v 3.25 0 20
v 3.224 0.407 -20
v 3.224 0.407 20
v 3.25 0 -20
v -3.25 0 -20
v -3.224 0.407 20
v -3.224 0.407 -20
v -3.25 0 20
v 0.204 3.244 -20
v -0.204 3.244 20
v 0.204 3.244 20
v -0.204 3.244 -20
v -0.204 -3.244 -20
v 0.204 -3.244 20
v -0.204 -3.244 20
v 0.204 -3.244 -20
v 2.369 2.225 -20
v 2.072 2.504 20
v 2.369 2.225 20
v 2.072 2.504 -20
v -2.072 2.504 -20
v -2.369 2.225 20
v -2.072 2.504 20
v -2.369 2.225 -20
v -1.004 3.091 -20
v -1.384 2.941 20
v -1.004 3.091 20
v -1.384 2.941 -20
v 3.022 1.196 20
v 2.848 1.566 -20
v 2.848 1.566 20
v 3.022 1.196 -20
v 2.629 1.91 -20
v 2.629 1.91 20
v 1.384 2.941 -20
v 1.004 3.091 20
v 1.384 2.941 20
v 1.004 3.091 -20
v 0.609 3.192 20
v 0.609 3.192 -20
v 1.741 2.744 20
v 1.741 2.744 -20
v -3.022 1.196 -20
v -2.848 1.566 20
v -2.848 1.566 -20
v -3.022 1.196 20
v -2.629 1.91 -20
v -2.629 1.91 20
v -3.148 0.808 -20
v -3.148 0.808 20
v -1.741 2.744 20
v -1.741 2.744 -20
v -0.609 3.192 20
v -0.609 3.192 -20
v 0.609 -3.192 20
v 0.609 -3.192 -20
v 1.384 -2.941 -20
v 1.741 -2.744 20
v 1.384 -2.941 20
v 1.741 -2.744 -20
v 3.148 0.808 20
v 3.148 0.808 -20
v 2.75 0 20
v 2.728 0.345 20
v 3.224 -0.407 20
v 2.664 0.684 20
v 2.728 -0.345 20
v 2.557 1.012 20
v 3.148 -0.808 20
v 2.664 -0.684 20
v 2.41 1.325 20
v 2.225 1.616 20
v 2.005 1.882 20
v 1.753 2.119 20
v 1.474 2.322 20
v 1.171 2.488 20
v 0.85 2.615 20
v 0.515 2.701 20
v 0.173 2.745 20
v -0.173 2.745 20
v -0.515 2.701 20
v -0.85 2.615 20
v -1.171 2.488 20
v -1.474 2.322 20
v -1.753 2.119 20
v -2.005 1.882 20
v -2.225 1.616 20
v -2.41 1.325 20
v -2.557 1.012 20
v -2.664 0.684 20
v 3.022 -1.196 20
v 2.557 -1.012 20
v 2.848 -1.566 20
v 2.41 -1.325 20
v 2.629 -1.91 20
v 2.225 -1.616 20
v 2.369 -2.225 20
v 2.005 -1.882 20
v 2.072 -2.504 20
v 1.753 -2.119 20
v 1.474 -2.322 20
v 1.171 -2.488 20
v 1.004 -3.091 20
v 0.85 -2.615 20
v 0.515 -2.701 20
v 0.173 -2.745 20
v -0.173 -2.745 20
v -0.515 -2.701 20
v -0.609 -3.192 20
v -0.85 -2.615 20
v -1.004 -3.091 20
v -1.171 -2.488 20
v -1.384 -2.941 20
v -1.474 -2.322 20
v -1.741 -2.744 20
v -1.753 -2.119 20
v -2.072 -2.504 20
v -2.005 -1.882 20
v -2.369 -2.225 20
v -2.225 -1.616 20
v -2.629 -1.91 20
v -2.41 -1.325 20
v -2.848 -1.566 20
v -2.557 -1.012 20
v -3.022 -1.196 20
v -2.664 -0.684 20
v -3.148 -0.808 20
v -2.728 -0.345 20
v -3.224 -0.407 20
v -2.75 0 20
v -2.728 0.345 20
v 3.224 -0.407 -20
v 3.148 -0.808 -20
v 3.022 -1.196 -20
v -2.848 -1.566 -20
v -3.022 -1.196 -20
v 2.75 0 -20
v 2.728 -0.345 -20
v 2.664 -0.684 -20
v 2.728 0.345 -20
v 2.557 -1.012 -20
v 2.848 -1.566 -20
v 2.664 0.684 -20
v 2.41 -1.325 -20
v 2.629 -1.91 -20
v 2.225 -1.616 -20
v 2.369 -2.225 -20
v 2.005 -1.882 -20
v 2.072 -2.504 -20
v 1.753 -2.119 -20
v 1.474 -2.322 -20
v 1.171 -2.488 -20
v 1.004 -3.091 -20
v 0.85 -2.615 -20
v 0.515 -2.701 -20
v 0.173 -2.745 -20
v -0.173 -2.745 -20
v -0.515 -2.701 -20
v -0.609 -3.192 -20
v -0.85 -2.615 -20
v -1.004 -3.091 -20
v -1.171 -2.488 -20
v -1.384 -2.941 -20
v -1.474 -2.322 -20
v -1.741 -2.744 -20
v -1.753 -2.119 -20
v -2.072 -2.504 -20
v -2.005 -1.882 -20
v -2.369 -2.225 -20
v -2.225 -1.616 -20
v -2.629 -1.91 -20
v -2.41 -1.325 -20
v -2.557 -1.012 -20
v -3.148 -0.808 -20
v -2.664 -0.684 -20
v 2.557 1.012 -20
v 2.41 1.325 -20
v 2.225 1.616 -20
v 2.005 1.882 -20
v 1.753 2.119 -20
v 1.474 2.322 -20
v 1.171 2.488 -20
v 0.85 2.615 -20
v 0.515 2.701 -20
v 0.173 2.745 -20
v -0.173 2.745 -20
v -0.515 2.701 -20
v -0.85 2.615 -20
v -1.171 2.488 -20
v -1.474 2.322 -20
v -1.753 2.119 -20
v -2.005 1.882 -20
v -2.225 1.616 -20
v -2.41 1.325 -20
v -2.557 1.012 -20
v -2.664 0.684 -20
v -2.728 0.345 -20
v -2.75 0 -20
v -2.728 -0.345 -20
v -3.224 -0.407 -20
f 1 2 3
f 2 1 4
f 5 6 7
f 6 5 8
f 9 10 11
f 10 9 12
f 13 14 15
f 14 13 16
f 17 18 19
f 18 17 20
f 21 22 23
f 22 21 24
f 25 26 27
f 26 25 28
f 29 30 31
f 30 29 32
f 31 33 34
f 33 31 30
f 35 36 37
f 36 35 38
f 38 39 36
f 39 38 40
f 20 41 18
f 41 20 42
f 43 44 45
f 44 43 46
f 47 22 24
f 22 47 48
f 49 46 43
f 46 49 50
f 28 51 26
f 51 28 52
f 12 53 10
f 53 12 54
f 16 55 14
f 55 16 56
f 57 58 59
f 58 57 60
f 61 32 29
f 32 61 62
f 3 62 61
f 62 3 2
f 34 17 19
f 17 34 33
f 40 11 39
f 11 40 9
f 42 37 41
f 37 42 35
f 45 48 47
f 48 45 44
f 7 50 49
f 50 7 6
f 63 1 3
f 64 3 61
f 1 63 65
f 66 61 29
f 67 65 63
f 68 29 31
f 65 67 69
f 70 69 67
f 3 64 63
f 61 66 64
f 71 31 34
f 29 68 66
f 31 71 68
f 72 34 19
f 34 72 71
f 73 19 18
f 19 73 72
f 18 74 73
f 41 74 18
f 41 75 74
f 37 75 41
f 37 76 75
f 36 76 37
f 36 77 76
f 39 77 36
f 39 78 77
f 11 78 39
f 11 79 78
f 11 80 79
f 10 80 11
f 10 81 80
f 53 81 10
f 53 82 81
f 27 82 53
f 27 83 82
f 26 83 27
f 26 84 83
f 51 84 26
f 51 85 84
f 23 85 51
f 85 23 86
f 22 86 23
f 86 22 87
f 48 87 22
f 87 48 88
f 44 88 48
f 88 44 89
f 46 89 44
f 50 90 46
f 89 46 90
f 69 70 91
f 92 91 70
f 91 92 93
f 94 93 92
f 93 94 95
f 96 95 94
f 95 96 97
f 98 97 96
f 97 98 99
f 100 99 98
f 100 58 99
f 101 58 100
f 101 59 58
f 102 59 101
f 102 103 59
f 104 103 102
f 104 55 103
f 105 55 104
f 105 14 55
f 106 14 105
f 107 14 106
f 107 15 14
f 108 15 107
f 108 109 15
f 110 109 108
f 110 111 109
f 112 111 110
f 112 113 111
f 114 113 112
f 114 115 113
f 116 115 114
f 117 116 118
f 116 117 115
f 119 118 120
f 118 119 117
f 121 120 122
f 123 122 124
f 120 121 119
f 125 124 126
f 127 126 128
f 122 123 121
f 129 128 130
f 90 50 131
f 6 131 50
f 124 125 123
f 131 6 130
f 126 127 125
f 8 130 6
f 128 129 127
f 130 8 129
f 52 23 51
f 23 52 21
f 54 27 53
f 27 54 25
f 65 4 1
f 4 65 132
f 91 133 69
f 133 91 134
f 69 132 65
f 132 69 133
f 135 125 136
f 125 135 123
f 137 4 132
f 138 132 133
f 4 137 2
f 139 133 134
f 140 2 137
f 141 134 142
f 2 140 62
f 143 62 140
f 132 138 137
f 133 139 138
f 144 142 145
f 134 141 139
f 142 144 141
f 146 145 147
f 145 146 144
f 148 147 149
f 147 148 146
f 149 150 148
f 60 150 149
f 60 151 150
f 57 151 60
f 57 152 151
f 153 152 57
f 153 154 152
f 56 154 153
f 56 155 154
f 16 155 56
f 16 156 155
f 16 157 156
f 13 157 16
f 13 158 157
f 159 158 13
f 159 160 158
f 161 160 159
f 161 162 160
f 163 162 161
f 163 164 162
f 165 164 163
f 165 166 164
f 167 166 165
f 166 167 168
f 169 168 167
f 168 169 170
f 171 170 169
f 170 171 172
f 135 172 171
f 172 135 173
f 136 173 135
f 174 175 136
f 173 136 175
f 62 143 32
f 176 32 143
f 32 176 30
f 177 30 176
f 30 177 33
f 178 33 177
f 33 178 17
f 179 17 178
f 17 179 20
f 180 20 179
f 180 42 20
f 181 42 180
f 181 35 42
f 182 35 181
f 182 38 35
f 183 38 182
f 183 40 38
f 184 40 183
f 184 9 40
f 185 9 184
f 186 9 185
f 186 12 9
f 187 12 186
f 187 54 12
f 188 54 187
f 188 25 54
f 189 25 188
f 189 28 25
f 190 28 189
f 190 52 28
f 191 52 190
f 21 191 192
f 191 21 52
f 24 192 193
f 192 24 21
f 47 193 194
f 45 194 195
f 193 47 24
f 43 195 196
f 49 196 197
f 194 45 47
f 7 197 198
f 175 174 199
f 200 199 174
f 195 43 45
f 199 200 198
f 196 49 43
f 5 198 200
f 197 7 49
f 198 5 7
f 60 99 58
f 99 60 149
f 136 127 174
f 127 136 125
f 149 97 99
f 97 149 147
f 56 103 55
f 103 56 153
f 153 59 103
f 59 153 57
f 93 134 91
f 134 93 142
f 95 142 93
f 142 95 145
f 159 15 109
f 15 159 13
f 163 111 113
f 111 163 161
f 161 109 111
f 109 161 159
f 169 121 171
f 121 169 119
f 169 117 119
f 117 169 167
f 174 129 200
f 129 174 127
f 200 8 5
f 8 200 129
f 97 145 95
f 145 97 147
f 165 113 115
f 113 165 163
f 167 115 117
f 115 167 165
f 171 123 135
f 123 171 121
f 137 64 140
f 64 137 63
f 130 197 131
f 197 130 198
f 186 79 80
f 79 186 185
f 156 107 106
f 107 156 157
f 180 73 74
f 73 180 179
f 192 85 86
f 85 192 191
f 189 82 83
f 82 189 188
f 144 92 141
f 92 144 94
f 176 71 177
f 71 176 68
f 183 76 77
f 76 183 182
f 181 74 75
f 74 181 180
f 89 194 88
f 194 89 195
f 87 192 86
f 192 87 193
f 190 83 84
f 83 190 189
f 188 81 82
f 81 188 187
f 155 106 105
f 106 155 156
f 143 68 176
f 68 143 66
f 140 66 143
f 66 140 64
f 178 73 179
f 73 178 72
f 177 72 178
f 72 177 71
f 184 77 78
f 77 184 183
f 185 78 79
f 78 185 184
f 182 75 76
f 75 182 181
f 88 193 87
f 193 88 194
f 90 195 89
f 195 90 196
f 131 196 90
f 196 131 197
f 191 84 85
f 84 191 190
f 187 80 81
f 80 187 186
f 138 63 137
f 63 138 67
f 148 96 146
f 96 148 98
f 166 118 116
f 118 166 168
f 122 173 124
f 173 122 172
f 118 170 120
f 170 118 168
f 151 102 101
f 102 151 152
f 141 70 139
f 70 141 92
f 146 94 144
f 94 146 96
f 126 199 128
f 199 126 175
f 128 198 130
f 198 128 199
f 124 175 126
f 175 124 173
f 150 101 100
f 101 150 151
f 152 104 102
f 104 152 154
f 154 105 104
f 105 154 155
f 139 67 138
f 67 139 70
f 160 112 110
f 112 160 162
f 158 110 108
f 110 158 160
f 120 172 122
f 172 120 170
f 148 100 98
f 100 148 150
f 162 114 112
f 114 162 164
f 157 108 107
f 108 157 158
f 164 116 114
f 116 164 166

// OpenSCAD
$fn = 50;


difference() {
	union() {
		translate(v = [0, 0, -20.0000000000]) {
			cylinder(h = 40, r = 3.2500000000);
		}
	}
	union() {
		translate(v = [0, 0, -100.0000000000]) {
			cylinder(h = 200, r = 2.7500000000);
		}
	}
}
